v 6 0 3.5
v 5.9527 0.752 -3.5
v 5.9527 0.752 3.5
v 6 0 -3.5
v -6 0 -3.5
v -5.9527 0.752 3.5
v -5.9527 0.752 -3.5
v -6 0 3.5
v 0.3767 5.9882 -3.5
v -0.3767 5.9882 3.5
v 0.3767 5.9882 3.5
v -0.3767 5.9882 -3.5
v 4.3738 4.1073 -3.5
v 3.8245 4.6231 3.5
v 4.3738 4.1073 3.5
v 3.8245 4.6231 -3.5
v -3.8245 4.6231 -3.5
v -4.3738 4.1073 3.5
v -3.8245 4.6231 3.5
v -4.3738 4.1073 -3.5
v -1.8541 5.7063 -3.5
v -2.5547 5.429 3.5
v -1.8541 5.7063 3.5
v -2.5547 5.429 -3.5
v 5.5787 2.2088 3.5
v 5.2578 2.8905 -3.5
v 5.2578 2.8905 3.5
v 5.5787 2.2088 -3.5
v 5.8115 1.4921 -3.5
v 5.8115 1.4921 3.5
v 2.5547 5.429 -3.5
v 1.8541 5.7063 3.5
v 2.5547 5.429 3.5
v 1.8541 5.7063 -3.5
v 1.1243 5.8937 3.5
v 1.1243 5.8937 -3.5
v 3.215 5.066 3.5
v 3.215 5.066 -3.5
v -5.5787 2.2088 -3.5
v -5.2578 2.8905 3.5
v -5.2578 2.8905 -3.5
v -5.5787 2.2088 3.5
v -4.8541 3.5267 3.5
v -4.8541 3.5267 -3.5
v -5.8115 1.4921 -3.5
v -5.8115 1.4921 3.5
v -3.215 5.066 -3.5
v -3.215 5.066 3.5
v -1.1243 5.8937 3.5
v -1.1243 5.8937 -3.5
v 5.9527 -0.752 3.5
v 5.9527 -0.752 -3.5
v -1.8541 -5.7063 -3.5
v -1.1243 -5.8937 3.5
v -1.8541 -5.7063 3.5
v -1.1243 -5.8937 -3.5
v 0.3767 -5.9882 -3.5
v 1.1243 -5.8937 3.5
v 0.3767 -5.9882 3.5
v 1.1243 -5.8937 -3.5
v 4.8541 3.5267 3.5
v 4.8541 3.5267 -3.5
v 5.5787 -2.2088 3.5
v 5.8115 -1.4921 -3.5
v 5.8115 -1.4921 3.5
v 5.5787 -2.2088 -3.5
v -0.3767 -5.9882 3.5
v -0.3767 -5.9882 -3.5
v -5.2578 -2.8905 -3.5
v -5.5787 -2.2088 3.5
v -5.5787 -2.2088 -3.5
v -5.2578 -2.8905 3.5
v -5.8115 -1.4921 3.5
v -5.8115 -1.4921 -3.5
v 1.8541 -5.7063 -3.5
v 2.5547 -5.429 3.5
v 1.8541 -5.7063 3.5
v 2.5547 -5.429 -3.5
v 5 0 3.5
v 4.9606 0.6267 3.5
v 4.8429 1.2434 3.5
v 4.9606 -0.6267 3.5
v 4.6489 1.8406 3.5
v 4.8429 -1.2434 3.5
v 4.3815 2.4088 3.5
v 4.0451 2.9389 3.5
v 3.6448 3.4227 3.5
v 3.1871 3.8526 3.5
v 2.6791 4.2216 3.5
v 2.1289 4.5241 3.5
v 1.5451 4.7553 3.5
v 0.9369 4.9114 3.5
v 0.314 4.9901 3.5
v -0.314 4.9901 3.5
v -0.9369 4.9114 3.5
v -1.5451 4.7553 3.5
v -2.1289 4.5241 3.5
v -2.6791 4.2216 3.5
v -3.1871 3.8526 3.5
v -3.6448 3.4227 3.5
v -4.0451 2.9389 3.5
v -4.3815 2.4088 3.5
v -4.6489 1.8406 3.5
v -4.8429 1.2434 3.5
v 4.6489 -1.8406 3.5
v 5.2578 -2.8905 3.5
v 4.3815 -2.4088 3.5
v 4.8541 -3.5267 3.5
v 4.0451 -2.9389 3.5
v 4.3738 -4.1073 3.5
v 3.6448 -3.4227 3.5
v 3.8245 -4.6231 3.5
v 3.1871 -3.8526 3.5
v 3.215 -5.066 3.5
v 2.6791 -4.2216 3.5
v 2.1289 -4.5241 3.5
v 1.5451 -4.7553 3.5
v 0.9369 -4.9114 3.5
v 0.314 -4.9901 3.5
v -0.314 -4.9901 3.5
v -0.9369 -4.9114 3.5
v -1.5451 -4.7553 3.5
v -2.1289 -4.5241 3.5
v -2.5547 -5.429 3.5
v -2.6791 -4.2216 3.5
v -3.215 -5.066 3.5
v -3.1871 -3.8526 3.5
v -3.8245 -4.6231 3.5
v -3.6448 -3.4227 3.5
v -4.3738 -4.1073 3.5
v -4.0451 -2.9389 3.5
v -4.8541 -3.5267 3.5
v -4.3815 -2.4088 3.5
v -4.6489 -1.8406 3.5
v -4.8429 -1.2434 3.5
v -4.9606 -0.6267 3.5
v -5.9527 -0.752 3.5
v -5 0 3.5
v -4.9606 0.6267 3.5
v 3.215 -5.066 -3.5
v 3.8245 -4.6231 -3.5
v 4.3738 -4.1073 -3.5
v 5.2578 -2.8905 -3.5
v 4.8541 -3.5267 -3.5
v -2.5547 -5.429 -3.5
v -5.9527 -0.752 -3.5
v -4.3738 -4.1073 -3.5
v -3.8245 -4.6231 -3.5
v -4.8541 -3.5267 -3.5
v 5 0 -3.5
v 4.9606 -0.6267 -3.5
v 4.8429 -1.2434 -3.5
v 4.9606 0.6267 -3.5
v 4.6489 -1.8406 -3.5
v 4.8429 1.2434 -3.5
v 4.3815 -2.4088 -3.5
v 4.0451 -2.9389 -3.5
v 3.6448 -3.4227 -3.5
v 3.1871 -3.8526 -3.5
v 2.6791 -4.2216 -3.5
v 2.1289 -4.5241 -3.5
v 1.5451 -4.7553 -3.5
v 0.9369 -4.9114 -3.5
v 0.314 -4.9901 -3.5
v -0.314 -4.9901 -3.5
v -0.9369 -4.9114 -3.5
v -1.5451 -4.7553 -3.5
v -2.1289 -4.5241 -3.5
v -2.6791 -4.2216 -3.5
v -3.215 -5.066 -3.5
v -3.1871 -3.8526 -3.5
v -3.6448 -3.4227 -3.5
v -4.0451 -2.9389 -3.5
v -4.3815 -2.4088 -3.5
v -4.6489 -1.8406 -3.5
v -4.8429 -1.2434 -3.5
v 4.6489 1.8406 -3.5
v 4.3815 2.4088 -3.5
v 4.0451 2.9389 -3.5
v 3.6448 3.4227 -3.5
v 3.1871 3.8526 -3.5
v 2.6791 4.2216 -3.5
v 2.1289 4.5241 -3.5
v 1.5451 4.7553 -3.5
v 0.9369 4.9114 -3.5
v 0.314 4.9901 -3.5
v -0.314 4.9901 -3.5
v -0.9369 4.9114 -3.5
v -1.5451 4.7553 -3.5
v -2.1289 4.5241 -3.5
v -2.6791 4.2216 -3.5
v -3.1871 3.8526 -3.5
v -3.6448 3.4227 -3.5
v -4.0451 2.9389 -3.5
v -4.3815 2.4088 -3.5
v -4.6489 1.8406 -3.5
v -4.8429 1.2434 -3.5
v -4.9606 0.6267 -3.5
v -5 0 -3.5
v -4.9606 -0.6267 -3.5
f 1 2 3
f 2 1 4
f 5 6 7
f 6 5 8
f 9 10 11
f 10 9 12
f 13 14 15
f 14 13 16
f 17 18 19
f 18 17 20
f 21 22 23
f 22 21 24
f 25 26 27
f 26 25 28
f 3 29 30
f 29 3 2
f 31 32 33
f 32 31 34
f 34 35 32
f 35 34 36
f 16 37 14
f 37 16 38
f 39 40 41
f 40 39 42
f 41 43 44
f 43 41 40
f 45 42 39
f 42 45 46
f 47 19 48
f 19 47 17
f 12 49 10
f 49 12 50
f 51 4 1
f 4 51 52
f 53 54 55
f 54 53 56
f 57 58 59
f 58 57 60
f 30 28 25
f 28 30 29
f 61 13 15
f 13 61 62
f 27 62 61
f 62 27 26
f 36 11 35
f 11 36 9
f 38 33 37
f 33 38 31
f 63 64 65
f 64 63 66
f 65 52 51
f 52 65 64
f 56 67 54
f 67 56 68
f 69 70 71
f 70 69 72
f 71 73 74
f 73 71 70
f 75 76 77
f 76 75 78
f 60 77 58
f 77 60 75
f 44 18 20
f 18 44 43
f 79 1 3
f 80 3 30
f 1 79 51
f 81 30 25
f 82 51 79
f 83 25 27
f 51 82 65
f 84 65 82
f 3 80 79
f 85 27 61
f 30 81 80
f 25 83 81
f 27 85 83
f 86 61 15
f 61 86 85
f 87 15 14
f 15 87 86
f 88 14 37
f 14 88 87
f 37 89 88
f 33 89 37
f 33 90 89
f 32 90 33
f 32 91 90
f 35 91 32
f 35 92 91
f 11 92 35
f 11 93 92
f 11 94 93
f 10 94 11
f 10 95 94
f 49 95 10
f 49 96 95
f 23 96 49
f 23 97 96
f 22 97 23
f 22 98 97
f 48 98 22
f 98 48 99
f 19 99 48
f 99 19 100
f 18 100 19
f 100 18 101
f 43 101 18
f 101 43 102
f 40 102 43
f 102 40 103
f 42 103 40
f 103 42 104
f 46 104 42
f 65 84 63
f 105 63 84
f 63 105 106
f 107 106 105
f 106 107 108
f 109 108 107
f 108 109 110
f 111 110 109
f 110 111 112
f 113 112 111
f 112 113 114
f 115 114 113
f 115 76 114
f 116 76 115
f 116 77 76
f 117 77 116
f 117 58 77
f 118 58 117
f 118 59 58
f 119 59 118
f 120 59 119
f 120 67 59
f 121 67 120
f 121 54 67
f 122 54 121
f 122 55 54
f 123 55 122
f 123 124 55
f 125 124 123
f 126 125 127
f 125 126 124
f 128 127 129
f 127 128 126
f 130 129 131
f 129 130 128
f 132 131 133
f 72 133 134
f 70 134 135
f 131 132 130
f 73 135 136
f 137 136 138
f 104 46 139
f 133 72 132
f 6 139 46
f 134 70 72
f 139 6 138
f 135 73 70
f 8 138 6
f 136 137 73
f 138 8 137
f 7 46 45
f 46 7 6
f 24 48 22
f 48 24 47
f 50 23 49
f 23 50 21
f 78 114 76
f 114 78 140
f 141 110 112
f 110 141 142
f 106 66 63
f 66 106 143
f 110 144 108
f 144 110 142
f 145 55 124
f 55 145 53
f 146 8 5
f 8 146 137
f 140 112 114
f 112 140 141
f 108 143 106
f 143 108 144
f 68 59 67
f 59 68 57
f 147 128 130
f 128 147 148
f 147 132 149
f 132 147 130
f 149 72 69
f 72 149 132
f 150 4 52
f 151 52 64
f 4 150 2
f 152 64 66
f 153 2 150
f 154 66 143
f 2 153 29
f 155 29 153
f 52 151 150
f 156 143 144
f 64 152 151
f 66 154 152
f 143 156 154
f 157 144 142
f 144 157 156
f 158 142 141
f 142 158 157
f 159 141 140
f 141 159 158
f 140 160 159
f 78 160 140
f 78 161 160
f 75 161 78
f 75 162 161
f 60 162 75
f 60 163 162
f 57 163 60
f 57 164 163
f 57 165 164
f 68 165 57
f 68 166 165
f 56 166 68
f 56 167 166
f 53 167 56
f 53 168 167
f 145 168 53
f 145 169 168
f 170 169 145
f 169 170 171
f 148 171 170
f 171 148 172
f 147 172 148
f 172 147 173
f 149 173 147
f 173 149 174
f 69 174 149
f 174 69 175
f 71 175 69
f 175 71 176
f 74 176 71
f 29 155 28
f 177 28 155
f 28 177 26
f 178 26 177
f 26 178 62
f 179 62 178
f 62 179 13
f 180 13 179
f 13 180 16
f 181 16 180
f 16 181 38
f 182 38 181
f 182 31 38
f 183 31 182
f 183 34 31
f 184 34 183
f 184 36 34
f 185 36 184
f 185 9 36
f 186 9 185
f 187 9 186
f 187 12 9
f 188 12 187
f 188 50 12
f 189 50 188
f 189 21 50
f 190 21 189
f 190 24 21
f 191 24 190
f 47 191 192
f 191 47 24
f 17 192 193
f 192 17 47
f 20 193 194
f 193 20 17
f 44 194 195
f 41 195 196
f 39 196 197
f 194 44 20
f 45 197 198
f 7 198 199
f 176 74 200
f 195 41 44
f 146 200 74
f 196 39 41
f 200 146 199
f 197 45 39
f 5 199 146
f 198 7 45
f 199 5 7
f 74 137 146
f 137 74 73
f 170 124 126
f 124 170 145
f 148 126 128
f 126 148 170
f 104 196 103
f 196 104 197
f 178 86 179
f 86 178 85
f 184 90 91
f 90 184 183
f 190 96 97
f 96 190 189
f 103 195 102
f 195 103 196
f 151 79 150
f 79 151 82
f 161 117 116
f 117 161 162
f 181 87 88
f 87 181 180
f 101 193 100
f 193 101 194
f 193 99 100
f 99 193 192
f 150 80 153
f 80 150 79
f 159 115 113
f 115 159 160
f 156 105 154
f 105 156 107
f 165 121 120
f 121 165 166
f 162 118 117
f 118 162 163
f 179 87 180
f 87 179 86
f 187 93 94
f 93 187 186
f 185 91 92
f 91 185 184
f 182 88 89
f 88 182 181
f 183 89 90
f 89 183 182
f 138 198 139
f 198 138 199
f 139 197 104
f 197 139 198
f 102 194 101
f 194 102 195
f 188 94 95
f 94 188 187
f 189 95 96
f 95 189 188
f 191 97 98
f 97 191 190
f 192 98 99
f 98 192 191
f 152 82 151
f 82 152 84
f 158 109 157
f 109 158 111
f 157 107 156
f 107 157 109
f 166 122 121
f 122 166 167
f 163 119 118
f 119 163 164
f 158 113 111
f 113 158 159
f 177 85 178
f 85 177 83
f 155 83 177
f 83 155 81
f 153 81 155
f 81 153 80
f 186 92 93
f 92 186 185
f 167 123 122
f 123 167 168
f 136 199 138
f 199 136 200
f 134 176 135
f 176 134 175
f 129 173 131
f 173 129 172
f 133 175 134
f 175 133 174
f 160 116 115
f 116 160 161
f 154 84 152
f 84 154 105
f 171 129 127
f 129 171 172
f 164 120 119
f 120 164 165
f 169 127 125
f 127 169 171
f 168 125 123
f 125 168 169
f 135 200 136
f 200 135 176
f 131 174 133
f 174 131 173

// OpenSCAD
$fn = 50;


difference() {
	union() {
		translate(v = [0, 0, -3.5000000000]) {
			cylinder(h = 7, r = 6.0000000000);
		}
	}
	union() {
		translate(v = [0, 0, -100.0000000000]) {
			cylinder(h = 200, r = 5.0000000000);
		}
	}
}
